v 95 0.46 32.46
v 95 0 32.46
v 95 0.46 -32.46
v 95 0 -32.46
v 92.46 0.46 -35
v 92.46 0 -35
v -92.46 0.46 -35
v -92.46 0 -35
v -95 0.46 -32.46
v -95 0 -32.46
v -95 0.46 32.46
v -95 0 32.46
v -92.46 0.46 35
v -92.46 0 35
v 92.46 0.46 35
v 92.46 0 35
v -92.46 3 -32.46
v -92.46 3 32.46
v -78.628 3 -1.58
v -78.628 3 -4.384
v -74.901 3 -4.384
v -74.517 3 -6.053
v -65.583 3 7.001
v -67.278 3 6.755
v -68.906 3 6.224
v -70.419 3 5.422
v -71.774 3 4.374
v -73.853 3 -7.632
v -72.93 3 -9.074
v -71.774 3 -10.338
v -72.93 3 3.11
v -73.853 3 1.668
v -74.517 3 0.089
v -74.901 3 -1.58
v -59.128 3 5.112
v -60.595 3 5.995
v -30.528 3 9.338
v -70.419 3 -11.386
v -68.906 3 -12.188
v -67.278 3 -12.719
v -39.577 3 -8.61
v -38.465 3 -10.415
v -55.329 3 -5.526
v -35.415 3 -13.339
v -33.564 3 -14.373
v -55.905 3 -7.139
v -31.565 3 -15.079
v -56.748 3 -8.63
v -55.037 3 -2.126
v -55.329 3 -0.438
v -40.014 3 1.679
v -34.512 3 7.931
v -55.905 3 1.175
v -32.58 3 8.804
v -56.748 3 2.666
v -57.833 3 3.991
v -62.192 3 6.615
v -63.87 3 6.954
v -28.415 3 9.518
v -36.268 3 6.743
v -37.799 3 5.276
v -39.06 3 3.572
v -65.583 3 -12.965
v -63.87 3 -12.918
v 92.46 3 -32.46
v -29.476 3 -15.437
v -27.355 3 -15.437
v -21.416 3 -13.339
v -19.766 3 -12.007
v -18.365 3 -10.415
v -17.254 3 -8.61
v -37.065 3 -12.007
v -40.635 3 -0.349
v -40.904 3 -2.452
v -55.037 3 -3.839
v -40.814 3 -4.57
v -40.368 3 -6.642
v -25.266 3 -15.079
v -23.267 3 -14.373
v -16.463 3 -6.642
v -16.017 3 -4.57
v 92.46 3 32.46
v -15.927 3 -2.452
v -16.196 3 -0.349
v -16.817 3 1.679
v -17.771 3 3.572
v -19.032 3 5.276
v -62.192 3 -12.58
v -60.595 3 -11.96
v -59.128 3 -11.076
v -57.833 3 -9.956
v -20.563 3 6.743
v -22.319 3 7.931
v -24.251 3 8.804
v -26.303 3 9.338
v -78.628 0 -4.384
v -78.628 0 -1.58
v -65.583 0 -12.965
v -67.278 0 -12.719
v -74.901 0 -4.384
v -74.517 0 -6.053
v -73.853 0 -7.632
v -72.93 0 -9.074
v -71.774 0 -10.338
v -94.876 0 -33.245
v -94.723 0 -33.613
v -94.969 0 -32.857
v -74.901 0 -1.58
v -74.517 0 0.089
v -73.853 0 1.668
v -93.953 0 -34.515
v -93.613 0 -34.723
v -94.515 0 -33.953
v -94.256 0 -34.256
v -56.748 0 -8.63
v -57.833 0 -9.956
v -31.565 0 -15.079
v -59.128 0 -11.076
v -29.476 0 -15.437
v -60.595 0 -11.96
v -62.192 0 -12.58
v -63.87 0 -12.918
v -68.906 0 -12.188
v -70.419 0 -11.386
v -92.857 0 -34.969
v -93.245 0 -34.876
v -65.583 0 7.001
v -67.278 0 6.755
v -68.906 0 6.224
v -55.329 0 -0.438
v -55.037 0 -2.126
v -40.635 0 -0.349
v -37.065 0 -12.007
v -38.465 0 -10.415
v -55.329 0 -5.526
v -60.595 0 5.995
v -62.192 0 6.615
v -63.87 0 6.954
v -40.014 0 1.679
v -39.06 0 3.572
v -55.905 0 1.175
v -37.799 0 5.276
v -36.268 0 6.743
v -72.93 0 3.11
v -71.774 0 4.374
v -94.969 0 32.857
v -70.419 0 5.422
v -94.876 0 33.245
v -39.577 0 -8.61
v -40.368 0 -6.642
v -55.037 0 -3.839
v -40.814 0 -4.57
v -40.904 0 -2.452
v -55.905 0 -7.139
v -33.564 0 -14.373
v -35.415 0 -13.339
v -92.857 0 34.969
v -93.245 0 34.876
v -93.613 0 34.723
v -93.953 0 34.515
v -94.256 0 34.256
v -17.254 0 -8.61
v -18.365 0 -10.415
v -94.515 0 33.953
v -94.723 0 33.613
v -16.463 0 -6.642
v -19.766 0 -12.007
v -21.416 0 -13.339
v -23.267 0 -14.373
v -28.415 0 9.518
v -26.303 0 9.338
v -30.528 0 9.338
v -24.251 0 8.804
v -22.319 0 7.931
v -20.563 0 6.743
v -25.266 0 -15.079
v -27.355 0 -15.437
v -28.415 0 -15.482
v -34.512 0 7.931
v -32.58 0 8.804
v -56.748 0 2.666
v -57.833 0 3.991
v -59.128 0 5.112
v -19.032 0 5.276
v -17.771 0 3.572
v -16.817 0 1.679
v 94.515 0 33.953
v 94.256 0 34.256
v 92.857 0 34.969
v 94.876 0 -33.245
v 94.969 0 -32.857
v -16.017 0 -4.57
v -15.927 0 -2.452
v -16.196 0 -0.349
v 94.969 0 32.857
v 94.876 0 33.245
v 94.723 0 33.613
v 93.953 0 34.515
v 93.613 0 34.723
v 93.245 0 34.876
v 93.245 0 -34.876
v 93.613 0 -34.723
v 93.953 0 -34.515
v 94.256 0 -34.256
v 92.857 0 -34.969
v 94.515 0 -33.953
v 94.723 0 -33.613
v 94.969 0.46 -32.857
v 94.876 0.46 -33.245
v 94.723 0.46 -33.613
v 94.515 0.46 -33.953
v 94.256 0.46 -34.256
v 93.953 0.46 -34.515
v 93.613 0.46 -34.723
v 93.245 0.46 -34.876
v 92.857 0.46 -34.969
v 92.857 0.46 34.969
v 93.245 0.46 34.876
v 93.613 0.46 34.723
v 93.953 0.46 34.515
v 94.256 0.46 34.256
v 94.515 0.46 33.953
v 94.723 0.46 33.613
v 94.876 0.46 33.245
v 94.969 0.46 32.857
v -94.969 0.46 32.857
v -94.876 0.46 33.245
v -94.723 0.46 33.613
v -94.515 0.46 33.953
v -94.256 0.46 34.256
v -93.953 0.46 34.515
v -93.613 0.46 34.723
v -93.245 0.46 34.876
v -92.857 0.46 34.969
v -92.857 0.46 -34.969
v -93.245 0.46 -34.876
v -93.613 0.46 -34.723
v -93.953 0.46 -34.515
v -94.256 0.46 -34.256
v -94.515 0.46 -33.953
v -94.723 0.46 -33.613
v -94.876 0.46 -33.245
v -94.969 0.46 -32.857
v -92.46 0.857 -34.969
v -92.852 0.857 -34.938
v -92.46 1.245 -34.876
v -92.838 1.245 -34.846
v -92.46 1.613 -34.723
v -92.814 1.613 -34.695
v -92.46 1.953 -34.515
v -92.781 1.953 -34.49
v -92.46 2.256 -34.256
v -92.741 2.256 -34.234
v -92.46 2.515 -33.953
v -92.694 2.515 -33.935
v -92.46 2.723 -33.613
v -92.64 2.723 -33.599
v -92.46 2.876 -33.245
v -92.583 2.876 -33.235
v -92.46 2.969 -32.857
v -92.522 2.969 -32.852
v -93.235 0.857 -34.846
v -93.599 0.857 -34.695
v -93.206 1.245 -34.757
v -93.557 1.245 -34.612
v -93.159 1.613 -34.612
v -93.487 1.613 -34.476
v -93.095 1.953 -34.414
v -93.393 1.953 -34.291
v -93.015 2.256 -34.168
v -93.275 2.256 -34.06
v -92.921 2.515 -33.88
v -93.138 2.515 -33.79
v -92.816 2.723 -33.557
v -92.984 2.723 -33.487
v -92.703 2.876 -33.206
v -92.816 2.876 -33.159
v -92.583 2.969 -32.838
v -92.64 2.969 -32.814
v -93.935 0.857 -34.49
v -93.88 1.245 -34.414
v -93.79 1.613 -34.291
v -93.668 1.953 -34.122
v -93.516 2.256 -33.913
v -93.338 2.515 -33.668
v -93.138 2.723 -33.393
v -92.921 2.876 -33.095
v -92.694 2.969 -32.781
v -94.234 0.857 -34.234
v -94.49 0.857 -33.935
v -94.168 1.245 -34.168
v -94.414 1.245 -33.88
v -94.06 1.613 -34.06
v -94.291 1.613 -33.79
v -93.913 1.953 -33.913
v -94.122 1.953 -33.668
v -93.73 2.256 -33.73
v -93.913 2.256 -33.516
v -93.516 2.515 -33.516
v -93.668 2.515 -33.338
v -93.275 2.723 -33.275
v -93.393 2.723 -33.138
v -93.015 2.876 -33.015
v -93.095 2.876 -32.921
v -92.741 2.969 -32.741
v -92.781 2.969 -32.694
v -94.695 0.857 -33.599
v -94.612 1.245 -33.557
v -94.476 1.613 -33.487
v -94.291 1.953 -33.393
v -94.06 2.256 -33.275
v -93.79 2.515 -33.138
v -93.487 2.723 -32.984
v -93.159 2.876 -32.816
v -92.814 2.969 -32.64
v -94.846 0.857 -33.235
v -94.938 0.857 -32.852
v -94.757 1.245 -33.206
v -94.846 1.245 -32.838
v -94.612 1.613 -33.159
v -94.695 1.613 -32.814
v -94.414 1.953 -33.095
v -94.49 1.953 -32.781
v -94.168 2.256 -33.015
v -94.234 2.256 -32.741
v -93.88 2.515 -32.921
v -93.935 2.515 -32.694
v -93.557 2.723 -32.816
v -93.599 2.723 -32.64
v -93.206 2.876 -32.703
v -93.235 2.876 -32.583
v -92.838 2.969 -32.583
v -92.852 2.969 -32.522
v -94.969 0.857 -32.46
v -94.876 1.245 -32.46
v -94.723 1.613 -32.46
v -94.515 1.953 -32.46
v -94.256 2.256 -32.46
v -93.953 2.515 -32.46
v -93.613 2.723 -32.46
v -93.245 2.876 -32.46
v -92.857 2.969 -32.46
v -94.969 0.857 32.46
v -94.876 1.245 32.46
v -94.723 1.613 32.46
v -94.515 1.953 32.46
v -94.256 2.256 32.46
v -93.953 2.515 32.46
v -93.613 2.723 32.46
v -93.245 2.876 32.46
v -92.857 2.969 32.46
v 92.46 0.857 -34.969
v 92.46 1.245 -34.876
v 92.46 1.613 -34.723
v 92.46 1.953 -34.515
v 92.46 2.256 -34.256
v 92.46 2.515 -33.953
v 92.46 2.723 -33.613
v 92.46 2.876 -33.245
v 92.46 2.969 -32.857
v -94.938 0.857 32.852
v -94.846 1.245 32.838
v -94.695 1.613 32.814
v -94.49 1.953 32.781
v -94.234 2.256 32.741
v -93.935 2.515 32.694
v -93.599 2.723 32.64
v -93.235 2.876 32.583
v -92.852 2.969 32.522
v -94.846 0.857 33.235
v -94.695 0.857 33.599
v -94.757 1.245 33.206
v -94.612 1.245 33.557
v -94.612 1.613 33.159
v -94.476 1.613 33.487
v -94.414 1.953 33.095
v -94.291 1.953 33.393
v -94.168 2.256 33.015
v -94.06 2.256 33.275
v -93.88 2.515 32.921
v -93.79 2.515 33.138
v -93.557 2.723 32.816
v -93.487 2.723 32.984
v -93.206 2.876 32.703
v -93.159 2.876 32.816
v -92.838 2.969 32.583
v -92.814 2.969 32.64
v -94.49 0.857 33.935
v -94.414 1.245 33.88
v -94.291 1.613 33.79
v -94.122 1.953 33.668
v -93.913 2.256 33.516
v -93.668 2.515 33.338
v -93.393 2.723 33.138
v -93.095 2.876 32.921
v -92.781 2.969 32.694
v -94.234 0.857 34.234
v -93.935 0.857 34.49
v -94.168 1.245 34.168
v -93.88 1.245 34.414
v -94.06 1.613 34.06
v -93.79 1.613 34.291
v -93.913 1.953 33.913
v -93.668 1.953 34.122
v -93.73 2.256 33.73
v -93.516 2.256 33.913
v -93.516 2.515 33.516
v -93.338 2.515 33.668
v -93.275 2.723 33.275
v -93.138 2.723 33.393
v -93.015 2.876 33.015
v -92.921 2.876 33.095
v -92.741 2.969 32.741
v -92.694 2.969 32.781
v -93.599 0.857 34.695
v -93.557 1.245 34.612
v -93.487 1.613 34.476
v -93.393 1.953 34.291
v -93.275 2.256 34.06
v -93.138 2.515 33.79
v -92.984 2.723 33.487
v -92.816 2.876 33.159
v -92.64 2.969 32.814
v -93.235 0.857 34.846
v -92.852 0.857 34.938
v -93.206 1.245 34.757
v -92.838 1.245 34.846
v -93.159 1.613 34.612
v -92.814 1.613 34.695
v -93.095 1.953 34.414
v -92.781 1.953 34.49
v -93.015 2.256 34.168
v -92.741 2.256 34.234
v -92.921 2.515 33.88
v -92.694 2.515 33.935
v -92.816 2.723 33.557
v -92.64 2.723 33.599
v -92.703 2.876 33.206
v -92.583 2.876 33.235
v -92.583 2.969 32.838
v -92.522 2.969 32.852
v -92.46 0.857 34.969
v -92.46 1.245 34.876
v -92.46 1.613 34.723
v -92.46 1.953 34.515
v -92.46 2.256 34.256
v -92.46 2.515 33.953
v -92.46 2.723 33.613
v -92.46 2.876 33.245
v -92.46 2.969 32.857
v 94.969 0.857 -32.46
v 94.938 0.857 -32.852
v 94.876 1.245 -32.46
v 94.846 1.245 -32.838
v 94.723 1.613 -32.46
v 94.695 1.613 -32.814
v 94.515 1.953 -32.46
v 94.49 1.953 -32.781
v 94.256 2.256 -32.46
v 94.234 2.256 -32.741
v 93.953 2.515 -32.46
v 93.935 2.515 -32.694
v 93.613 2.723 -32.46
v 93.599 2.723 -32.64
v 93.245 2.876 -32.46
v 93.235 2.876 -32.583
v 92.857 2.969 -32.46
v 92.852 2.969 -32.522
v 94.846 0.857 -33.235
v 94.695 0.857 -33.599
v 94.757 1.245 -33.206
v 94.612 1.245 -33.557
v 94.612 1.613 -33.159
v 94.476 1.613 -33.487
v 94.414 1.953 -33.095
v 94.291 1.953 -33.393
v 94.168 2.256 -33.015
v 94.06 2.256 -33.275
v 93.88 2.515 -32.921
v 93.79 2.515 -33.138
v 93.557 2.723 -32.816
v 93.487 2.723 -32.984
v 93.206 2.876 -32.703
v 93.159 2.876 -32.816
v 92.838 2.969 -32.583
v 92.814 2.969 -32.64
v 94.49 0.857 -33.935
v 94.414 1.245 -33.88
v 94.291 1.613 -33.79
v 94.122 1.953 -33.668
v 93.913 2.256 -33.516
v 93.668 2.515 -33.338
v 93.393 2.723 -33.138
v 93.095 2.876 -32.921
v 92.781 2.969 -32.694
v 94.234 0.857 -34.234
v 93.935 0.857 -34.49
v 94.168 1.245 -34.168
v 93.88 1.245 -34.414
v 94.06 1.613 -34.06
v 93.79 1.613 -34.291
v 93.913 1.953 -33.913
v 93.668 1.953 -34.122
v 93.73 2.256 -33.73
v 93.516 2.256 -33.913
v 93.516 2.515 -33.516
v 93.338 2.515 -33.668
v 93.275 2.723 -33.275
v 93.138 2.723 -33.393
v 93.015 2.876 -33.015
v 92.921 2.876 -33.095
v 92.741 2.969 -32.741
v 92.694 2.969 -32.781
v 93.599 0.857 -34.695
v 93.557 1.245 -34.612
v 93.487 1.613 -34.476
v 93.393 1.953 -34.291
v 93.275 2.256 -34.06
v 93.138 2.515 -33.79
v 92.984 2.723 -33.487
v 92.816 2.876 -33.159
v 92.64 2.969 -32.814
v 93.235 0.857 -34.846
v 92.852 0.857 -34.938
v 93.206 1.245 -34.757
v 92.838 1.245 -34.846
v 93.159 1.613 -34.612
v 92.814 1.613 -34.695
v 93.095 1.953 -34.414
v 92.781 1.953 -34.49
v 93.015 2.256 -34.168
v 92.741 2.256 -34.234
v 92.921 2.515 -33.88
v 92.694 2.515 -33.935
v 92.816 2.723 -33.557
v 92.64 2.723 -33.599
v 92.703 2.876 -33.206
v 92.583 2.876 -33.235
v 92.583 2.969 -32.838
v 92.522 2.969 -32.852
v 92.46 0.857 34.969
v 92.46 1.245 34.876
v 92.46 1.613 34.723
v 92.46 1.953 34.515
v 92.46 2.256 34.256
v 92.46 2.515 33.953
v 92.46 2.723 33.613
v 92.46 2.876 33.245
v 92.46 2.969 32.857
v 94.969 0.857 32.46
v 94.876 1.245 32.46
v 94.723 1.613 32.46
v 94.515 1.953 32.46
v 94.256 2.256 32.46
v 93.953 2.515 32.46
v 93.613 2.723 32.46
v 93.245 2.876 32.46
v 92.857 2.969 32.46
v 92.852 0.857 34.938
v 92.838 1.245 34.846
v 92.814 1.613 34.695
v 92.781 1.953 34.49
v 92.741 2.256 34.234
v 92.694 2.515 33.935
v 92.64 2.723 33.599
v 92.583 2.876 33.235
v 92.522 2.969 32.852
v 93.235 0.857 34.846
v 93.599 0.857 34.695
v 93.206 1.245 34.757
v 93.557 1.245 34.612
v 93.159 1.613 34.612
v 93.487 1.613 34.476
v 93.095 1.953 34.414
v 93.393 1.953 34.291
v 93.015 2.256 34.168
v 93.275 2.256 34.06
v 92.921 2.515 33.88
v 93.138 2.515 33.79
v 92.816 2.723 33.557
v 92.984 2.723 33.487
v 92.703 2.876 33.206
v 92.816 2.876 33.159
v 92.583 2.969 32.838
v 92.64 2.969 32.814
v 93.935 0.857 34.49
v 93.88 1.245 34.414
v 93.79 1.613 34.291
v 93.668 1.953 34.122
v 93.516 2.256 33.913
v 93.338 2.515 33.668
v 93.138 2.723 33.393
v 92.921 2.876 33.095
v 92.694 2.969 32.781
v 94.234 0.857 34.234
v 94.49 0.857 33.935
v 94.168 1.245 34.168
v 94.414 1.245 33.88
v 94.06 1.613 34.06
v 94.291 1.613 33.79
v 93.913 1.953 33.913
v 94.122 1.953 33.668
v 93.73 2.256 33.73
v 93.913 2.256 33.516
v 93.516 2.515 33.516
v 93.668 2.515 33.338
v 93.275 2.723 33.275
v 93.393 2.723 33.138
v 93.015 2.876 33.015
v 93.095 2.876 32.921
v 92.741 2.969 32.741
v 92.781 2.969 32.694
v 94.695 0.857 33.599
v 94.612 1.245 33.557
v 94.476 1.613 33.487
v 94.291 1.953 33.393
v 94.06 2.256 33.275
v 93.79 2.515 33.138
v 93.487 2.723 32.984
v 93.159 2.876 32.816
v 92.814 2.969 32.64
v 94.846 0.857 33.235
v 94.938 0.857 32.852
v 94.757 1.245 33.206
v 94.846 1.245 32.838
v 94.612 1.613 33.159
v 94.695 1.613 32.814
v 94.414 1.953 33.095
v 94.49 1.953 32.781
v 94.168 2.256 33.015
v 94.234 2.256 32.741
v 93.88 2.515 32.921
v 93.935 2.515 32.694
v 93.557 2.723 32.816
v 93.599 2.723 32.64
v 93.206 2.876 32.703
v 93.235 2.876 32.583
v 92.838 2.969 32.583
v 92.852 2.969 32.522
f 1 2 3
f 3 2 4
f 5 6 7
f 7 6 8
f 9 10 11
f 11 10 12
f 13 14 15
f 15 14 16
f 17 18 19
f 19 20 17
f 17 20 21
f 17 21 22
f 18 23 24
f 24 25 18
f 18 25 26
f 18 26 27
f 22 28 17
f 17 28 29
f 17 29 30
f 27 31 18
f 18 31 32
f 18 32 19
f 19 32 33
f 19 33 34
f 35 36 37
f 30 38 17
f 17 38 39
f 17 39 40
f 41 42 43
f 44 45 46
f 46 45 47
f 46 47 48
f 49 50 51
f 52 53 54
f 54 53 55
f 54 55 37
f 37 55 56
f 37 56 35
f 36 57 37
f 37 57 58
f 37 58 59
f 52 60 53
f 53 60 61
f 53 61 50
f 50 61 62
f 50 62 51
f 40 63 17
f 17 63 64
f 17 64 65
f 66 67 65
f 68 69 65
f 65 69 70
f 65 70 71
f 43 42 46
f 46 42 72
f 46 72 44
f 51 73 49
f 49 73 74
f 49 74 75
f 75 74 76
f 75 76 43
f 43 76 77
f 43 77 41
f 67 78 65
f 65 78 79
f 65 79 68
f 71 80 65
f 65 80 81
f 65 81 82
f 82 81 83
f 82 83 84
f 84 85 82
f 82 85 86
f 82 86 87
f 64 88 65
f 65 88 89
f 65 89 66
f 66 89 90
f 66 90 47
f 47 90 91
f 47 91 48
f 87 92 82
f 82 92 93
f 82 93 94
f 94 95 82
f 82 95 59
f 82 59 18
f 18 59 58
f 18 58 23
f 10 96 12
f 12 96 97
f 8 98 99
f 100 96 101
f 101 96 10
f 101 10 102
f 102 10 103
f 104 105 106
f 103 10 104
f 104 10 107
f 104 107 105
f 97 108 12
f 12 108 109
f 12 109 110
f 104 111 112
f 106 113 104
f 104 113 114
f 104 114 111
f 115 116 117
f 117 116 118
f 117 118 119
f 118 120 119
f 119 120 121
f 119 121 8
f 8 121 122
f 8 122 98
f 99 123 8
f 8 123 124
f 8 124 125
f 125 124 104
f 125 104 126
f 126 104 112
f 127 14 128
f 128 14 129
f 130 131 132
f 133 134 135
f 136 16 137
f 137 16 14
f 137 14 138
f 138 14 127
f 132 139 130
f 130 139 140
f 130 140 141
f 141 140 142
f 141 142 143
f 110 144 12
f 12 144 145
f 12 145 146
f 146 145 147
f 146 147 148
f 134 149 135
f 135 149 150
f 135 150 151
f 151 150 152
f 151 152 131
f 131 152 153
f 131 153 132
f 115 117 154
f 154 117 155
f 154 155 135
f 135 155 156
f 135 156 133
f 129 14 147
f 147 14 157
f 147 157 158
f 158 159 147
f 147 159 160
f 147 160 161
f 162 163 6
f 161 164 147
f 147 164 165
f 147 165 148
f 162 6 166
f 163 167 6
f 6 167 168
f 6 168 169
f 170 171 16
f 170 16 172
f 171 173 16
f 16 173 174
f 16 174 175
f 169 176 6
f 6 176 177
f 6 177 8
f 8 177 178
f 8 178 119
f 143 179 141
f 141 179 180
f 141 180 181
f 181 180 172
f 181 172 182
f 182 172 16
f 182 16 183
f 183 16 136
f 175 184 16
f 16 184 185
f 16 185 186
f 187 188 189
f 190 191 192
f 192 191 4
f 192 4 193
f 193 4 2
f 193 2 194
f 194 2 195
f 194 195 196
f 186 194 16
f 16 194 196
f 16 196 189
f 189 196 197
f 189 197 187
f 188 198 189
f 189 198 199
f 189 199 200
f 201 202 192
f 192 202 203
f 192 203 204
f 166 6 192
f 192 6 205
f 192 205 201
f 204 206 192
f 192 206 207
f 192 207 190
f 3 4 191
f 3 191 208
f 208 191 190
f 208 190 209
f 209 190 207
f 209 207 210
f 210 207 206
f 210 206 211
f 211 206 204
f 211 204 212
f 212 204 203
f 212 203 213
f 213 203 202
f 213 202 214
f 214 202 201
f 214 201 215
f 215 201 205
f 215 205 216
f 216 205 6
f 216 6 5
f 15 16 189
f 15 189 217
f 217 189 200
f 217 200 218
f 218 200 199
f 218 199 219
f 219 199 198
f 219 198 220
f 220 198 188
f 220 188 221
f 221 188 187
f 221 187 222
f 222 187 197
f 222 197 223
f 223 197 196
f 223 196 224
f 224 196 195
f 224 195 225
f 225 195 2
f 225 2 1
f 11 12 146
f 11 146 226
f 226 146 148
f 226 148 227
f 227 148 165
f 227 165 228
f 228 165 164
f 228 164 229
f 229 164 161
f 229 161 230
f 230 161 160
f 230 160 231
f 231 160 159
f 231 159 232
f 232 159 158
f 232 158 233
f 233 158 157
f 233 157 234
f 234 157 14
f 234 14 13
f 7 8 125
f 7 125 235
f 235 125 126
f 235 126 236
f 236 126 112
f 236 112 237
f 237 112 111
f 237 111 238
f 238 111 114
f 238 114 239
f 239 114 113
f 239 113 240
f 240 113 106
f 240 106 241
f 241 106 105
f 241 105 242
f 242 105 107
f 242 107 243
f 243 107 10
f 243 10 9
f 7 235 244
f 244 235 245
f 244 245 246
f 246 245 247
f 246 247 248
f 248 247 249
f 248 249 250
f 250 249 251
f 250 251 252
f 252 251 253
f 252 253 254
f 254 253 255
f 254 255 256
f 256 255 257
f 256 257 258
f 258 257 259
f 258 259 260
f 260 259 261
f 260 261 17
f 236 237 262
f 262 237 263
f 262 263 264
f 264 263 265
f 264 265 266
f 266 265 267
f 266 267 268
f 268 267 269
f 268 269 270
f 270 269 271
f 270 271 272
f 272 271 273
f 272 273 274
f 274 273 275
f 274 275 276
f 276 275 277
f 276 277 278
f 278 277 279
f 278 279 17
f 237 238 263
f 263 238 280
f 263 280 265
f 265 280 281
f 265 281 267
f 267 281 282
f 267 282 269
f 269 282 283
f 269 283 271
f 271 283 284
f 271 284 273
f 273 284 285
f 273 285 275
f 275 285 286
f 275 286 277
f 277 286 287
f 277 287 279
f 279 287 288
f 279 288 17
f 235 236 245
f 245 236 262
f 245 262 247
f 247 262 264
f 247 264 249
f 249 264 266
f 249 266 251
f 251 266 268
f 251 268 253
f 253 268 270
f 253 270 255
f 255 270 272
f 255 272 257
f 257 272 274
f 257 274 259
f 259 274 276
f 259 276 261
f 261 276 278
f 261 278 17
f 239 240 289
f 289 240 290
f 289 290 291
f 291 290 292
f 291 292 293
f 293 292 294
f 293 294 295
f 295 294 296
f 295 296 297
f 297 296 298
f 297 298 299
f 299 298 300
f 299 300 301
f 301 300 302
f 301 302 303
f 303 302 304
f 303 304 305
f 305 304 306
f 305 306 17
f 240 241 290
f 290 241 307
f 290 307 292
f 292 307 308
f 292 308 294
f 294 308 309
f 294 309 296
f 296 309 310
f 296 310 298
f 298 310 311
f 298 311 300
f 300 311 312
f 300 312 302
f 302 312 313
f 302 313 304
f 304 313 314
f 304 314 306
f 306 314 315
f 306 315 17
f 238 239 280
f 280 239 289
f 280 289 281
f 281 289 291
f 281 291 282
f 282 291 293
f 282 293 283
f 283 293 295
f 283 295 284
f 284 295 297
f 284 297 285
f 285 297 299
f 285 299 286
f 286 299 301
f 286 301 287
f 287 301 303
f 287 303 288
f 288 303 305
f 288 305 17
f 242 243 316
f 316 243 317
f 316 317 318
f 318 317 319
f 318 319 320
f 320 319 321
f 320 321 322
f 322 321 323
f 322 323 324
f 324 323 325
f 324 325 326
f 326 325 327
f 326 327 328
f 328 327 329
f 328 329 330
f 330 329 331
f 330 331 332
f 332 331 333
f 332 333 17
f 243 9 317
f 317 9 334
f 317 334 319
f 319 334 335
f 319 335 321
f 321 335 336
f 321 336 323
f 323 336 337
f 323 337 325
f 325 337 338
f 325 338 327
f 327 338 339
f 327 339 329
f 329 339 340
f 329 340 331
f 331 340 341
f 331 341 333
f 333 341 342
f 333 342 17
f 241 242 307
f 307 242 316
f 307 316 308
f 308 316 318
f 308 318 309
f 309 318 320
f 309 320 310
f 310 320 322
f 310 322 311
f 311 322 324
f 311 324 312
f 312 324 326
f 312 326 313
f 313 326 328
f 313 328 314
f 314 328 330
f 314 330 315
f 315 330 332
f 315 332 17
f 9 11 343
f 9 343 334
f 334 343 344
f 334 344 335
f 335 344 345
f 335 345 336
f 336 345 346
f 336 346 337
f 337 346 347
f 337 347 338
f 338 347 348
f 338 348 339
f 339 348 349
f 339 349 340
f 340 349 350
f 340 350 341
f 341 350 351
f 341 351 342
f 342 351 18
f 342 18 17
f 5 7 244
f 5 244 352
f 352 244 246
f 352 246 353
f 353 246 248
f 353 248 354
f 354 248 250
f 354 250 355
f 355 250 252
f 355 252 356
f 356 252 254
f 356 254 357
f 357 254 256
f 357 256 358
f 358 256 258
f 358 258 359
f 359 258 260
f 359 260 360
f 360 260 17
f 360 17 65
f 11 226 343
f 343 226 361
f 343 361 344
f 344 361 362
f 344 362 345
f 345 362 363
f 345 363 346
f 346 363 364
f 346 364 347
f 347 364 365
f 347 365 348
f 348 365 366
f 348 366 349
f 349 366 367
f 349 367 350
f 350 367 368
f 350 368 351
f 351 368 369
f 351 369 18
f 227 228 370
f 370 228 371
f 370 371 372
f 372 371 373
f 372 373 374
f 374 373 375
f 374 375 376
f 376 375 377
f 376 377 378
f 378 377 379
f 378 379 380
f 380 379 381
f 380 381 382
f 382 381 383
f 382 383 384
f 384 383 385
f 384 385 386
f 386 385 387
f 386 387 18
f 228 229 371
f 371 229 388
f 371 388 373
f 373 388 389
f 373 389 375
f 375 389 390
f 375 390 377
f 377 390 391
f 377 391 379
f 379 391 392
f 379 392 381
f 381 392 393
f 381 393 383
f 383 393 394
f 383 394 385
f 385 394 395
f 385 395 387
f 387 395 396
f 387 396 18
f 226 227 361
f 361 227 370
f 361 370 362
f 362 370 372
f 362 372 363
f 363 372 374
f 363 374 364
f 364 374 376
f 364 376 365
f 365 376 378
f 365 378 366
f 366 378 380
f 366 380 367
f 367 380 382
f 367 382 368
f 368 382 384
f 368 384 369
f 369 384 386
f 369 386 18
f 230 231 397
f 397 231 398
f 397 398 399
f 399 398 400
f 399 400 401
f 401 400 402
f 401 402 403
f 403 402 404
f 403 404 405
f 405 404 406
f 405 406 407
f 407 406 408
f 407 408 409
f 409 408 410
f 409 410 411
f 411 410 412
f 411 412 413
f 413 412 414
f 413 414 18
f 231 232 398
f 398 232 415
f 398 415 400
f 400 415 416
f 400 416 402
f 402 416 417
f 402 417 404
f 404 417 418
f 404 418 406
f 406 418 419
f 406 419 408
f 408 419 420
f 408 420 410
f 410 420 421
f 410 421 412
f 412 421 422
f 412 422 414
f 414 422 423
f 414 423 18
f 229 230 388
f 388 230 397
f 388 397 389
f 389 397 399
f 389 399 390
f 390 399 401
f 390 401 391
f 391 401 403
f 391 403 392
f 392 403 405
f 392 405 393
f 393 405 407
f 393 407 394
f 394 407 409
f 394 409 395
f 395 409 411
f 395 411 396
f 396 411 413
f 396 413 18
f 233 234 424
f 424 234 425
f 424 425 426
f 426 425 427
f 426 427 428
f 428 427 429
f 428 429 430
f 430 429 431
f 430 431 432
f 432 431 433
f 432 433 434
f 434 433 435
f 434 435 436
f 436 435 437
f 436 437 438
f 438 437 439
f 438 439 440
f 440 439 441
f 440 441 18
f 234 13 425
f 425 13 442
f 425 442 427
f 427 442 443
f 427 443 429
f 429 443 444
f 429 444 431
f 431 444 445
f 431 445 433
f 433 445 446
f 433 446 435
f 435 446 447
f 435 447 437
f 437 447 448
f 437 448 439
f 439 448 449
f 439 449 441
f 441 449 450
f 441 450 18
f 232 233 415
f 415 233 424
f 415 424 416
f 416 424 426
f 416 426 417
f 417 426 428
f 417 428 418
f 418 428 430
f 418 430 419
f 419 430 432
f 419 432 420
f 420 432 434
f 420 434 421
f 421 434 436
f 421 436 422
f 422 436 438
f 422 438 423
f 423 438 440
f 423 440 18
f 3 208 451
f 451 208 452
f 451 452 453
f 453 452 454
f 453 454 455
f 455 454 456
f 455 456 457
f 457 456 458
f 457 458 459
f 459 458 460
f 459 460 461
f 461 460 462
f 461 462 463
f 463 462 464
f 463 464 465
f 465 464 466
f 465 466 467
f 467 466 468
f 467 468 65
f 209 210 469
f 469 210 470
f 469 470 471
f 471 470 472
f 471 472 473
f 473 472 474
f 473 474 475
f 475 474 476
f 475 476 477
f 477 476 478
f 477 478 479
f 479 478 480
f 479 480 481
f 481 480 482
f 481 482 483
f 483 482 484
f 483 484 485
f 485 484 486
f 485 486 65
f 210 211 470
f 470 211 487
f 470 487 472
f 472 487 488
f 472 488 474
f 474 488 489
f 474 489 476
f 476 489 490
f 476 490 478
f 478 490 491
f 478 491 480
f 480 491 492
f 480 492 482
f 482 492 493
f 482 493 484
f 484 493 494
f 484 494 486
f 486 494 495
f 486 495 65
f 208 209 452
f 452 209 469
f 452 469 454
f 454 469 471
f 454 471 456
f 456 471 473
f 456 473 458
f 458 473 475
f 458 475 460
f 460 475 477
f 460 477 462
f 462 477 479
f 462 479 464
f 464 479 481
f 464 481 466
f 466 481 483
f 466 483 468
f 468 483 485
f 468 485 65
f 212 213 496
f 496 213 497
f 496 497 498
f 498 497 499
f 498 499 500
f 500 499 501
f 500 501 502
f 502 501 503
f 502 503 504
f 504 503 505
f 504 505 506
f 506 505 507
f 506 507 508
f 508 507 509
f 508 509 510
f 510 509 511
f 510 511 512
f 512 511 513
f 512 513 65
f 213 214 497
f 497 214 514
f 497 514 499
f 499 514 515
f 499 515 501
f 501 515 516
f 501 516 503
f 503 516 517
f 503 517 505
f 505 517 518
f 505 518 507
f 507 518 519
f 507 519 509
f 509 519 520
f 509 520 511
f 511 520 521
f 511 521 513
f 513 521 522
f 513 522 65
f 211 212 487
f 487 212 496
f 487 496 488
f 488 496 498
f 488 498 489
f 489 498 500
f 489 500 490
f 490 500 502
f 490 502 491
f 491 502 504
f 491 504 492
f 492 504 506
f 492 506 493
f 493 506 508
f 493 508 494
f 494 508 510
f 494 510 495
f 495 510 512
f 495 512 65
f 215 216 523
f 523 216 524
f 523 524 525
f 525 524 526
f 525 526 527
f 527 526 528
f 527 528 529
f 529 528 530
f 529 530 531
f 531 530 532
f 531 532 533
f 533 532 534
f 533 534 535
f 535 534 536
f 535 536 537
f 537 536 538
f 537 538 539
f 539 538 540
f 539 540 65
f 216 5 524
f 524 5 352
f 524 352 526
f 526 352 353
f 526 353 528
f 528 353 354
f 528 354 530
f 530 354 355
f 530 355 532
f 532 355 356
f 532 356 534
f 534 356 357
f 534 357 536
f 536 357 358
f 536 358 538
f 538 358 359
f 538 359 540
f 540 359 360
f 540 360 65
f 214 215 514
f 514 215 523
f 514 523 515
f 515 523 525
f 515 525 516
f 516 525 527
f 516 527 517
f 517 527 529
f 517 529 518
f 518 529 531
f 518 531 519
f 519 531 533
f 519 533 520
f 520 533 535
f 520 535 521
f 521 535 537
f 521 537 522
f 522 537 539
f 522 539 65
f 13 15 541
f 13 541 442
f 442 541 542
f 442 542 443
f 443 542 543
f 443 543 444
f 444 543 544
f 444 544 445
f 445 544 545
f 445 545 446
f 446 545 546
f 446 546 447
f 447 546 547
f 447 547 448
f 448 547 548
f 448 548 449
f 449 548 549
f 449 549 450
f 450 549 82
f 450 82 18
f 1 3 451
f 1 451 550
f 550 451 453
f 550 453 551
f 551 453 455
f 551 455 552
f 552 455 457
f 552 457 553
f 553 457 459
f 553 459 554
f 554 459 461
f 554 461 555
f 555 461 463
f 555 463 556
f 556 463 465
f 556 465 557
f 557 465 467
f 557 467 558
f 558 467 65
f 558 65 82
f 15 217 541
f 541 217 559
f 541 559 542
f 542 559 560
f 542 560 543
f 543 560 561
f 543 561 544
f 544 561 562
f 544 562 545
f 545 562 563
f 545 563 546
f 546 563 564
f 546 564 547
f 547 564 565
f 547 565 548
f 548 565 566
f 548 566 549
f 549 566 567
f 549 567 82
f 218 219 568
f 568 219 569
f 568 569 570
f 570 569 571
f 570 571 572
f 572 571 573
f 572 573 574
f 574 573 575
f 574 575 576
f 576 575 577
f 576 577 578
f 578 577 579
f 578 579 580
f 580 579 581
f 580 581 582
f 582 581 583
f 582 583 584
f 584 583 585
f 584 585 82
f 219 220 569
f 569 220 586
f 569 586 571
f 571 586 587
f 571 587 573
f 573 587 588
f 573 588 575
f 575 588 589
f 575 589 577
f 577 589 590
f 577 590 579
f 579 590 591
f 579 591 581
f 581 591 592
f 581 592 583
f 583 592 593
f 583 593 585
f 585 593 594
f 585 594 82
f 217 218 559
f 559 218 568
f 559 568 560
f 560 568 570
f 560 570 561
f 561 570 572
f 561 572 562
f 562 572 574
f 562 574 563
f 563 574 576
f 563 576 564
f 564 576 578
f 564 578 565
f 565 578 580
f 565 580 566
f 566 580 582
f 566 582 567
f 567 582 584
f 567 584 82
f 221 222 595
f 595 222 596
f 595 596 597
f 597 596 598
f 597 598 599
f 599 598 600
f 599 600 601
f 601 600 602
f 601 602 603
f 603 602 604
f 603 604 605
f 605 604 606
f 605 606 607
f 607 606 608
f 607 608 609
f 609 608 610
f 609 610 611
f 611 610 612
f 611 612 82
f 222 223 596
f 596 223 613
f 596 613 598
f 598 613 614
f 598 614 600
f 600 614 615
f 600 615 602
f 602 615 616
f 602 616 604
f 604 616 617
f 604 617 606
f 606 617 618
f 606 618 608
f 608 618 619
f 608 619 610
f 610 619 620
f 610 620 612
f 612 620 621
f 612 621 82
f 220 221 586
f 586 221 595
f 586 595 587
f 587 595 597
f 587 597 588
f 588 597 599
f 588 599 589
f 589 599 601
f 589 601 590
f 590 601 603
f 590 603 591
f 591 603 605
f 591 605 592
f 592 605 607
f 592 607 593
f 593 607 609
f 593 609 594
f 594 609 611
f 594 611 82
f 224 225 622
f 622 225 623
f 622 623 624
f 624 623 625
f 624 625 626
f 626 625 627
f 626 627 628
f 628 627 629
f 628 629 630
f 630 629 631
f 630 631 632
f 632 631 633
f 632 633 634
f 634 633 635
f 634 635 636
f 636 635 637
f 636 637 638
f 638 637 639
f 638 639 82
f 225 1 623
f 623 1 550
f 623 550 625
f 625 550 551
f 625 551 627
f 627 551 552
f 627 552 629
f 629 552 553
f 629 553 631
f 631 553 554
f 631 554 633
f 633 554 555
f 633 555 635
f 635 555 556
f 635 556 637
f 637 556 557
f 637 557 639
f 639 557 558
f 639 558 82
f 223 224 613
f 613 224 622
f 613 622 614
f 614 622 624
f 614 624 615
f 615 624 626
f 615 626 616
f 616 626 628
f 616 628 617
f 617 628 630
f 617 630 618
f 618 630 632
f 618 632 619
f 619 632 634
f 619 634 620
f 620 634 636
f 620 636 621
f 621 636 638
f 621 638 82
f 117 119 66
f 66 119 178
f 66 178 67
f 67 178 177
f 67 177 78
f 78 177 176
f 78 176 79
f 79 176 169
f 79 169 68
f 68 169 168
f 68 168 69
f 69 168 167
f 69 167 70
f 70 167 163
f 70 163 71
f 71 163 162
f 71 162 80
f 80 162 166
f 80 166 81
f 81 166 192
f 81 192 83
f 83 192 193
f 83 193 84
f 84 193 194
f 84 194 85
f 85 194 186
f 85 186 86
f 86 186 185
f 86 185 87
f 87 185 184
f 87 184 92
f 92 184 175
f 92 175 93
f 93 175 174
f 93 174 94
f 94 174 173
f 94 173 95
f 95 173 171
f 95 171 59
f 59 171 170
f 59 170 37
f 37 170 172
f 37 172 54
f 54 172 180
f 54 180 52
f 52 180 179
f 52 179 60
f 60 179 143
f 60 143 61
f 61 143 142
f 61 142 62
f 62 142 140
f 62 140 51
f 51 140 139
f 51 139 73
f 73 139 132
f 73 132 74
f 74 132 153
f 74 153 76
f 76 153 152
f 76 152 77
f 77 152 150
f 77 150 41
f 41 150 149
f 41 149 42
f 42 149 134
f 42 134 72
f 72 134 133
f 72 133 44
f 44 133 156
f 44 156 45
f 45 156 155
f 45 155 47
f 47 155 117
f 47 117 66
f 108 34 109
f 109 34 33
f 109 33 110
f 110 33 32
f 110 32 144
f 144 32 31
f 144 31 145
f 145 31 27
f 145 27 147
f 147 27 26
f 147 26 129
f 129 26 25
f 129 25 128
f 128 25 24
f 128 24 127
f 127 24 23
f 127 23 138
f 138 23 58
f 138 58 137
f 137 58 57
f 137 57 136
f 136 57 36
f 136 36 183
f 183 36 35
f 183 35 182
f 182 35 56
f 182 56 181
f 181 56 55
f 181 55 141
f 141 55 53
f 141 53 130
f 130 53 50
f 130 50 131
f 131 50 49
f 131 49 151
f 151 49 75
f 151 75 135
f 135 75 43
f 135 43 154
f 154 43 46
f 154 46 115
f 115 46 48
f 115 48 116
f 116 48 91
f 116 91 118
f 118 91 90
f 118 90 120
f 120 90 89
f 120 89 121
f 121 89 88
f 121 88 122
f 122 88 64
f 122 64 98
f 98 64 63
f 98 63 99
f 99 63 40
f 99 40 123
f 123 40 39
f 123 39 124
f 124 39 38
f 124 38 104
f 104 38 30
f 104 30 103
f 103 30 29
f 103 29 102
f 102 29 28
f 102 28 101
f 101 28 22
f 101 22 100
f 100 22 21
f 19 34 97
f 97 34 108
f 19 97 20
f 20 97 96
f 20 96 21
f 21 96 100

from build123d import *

# Parameters (mm, degrees)
SKETCH1_W           = 190
SKETCH1_H           = 70
BOSS_EXTRUDE1_DEPTH = 3
FILLET6_R           = 2.54
FILLET7_R           = 2.54
SKETCH2_R           = 12.5
CUT_EXTRUDE1_DEPTH  = 6.578222623


with BuildPart() as part:
    # Sketch1 → Boss-Extrude1 (new body)
    with BuildSketch(Plane(origin=(0, 0, 0), x_dir=(1, 0, 0), z_dir=(0, 1, 0))):
        Rectangle(SKETCH1_W, SKETCH1_H)
    extrude(amount=BOSS_EXTRUDE1_DEPTH)

    # Fillet6
    fillet6_edges = [part.edges().sort_by_distance(p)[0] for p in [
        (95, 1.5, 35),
        (-95, 1.5, 35),
        (-95, 1.5, -35),
        (95, 1.5, -35),
    ]]
    fillet(fillet6_edges, radius=FILLET6_R)

    # Fillet7
    fillet7_edges = [part.edges().sort_by_distance(p)[0] for p in [
        (0, 3, -35),
        (95, 3, 0),
        (-95, 3, 0),
        (0, 3, 35),
        (-94.256051224, 3, -34.256051224),
        (-94.256051224, 3, 34.256051224),
        (94.256051224, 3, 34.256051224),
        (94.256051224, 3, -34.256051224),
    ]]
    fillet(fillet7_edges, radius=FILLET7_R)

    # Sketch2 → Cut-Extrude1 (cut)
    with BuildSketch(Plane(origin=(0, 3, 0), x_dir=(1, 0, 0), z_dir=(0, 1, 0))):
        with BuildLine():
            ThreePointArc((-74.901262656, 4.383937879), (-75, 2.982154077), (-74.901262656, 1.580370275))
            Line((-74.901262656, 1.580370275), (-71.372168947, 1.580370275))
            Line((-71.372168947, 1.580370275), (-71.372168947, 4.383937879))
            Line((-71.372168947, 4.383937879), (-74.901262656, 4.383937879))
        make_face()
        with BuildLine():
            Line((-71.372168947, 1.580370275), (-74.901262656, 1.580370275))
            ThreePointArc((-74.901262656, 1.580370275), (-64.297371562, -6.993131046), (-55, 2.982154077))
            ThreePointArc((-55, 2.982154077), (-64.297371562, 12.9574392), (-74.901262656, 4.383937879))
            Line((-74.901262656, 4.383937879), (-71.372168947, 4.383937879))
            Line((-71.372168947, 4.383937879), (-71.372168947, 1.580370275))
        make_face()
        with Locations(Location((-28.415448, 2.982154077, 0), (0, 0, 270))):
            Circle(SKETCH2_R)
        with BuildLine():
            Line((-78.627831053, 4.383937879), (-78.627831053, 1.580370275))
            Line((-78.627831053, 1.580370275), (-74.901262656, 1.580370275))
            ThreePointArc((-74.901262656, 1.580370275), (-75, 2.982154077), (-74.901262656, 4.383937879))
            Line((-74.901262656, 4.383937879), (-78.627831053, 4.383937879))
        make_face()
    extrude(amount=-CUT_EXTRUDE1_DEPTH, mode=Mode.SUBTRACT)


solid = part.part
